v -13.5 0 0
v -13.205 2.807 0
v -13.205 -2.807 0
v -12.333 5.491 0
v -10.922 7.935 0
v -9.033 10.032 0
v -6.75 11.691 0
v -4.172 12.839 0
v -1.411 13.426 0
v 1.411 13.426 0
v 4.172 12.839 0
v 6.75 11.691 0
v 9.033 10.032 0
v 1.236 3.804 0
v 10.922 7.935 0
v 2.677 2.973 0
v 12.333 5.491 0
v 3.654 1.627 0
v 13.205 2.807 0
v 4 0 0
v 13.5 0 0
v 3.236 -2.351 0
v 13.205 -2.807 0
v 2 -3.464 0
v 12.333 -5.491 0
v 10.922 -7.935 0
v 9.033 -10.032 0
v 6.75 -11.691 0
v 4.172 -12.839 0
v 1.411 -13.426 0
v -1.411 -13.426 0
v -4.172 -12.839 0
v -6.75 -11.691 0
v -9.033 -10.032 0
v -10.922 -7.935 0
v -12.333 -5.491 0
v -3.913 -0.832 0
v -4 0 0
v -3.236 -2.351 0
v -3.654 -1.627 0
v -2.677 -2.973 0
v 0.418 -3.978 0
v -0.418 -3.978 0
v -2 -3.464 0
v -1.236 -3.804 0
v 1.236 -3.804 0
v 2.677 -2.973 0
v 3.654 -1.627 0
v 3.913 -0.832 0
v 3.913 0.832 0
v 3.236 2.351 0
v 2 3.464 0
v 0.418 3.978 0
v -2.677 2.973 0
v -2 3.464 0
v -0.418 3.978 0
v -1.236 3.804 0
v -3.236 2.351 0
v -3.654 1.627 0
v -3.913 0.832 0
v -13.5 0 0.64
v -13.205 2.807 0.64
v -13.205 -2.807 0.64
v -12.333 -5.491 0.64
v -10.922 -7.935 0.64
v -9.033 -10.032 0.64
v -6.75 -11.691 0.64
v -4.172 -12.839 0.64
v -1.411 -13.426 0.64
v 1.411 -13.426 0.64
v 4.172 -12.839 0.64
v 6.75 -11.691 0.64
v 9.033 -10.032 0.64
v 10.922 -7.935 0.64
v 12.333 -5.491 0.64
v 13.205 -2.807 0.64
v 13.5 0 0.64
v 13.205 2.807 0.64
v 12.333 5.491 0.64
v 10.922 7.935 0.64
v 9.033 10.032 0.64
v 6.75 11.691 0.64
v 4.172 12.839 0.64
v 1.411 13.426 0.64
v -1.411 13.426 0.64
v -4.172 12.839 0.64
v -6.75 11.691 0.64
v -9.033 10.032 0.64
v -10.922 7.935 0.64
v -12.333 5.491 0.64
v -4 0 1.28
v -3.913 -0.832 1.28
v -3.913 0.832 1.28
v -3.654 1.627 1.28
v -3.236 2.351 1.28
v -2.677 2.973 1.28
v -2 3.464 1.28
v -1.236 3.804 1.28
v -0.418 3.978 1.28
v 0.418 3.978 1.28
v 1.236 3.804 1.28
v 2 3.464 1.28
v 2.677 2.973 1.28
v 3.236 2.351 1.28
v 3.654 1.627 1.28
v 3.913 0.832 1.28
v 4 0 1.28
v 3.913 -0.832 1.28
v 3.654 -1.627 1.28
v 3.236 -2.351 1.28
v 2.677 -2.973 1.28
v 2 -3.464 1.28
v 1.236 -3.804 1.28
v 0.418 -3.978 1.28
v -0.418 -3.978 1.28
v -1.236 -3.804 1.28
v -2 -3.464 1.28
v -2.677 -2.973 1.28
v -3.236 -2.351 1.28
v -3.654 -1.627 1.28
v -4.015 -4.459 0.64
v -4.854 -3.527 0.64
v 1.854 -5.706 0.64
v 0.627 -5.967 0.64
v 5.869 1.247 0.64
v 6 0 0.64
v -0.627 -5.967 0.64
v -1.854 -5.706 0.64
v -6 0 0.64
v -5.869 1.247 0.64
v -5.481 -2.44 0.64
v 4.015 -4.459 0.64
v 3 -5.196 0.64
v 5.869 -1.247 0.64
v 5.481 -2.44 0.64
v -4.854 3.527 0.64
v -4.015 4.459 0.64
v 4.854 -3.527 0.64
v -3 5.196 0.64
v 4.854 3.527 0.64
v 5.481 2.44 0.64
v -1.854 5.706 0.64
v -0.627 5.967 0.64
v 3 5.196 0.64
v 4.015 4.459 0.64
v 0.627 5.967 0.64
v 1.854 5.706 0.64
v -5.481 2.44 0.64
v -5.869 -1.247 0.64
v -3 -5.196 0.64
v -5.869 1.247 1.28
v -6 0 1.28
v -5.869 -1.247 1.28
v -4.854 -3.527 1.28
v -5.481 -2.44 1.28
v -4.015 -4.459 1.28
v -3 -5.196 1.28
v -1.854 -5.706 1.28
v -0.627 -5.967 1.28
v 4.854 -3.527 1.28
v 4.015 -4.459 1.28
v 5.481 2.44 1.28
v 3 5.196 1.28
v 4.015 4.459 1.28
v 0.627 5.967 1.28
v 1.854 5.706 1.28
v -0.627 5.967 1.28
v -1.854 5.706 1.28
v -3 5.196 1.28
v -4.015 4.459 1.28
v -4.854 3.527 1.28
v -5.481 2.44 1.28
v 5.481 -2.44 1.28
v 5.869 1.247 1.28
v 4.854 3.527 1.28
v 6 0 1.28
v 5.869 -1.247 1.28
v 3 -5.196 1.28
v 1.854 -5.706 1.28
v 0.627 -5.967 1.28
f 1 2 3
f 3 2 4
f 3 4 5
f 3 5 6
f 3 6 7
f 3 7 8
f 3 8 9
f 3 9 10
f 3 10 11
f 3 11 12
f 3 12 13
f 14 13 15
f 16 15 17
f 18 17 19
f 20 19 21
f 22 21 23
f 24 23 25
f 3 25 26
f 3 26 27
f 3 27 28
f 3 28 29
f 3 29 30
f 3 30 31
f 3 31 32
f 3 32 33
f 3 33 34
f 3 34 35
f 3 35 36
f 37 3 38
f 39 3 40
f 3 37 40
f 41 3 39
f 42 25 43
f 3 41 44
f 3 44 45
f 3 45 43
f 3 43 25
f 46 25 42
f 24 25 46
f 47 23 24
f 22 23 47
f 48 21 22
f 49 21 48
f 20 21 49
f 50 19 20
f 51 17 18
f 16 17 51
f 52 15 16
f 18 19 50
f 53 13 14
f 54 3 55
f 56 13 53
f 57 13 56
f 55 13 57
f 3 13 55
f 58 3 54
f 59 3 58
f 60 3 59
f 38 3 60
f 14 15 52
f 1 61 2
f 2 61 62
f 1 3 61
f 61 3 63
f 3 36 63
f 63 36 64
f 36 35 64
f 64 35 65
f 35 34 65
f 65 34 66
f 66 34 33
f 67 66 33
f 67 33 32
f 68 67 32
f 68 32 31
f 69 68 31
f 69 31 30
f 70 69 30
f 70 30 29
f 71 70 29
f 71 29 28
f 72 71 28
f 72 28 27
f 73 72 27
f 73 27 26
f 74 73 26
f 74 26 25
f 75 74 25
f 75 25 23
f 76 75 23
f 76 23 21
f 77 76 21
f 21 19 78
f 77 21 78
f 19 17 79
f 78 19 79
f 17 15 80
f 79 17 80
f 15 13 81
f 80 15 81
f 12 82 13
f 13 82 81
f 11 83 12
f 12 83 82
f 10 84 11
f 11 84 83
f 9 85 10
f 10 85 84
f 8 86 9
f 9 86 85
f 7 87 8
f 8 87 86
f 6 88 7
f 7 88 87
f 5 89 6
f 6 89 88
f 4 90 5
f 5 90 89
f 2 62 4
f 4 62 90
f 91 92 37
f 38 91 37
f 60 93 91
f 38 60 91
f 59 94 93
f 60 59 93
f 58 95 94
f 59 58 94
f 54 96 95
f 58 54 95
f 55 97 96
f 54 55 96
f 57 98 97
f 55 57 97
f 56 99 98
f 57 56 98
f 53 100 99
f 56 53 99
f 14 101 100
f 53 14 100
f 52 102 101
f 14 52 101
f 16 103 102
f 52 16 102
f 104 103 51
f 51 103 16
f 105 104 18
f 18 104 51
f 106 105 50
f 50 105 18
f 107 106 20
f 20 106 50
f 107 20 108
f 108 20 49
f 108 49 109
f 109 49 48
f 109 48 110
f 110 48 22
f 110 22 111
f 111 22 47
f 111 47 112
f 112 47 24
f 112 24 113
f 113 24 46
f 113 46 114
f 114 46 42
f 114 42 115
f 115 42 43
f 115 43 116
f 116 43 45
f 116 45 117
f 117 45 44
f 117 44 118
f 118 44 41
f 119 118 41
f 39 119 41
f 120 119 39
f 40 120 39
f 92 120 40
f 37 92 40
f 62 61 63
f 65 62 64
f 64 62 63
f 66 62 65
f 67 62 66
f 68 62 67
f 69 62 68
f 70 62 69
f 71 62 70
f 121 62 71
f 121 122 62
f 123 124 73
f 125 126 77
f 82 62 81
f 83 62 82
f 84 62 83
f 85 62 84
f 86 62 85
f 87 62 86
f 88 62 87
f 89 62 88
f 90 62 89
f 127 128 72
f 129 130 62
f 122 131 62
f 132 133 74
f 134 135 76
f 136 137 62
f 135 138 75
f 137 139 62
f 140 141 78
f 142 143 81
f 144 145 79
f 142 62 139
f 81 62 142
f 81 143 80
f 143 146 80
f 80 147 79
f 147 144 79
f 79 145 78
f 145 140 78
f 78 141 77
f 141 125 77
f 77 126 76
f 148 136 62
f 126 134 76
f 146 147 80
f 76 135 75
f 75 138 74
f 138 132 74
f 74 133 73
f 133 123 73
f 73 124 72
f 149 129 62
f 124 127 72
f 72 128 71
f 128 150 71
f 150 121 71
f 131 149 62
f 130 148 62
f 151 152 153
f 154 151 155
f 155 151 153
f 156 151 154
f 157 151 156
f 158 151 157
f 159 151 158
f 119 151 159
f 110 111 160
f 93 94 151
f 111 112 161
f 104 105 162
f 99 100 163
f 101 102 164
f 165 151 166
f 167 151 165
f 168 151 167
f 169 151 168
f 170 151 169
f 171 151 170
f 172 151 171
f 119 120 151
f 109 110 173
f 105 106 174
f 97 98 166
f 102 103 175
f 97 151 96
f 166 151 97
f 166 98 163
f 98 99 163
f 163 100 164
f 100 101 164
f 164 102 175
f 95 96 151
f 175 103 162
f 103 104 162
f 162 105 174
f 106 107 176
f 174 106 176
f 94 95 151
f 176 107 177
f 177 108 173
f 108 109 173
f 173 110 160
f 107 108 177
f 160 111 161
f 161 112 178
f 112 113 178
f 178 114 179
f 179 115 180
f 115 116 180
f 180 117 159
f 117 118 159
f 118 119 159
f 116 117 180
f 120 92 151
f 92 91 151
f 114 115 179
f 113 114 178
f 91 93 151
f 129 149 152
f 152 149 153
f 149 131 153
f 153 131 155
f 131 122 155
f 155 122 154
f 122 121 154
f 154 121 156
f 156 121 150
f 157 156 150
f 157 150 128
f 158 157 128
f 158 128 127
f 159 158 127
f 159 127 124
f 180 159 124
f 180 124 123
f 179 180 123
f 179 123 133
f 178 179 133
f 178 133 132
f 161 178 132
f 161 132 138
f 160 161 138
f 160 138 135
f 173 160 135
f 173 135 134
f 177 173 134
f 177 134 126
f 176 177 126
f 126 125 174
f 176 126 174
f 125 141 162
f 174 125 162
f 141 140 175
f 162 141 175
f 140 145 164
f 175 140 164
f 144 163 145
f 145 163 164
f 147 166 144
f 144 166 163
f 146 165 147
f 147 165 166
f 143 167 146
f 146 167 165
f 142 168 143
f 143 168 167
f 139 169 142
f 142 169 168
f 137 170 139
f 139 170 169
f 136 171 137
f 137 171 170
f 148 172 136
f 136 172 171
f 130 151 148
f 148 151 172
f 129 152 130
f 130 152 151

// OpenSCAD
$fn = 30;
layerheight = 0.32;
difference(){
union(){
cylinder(r=13.5, h=layerheight*2);
cylinder(r=6, h=layerheight*4);
}
translate([0,0,-1])cylinder(r=4, h=layerheight*4+2);
}
